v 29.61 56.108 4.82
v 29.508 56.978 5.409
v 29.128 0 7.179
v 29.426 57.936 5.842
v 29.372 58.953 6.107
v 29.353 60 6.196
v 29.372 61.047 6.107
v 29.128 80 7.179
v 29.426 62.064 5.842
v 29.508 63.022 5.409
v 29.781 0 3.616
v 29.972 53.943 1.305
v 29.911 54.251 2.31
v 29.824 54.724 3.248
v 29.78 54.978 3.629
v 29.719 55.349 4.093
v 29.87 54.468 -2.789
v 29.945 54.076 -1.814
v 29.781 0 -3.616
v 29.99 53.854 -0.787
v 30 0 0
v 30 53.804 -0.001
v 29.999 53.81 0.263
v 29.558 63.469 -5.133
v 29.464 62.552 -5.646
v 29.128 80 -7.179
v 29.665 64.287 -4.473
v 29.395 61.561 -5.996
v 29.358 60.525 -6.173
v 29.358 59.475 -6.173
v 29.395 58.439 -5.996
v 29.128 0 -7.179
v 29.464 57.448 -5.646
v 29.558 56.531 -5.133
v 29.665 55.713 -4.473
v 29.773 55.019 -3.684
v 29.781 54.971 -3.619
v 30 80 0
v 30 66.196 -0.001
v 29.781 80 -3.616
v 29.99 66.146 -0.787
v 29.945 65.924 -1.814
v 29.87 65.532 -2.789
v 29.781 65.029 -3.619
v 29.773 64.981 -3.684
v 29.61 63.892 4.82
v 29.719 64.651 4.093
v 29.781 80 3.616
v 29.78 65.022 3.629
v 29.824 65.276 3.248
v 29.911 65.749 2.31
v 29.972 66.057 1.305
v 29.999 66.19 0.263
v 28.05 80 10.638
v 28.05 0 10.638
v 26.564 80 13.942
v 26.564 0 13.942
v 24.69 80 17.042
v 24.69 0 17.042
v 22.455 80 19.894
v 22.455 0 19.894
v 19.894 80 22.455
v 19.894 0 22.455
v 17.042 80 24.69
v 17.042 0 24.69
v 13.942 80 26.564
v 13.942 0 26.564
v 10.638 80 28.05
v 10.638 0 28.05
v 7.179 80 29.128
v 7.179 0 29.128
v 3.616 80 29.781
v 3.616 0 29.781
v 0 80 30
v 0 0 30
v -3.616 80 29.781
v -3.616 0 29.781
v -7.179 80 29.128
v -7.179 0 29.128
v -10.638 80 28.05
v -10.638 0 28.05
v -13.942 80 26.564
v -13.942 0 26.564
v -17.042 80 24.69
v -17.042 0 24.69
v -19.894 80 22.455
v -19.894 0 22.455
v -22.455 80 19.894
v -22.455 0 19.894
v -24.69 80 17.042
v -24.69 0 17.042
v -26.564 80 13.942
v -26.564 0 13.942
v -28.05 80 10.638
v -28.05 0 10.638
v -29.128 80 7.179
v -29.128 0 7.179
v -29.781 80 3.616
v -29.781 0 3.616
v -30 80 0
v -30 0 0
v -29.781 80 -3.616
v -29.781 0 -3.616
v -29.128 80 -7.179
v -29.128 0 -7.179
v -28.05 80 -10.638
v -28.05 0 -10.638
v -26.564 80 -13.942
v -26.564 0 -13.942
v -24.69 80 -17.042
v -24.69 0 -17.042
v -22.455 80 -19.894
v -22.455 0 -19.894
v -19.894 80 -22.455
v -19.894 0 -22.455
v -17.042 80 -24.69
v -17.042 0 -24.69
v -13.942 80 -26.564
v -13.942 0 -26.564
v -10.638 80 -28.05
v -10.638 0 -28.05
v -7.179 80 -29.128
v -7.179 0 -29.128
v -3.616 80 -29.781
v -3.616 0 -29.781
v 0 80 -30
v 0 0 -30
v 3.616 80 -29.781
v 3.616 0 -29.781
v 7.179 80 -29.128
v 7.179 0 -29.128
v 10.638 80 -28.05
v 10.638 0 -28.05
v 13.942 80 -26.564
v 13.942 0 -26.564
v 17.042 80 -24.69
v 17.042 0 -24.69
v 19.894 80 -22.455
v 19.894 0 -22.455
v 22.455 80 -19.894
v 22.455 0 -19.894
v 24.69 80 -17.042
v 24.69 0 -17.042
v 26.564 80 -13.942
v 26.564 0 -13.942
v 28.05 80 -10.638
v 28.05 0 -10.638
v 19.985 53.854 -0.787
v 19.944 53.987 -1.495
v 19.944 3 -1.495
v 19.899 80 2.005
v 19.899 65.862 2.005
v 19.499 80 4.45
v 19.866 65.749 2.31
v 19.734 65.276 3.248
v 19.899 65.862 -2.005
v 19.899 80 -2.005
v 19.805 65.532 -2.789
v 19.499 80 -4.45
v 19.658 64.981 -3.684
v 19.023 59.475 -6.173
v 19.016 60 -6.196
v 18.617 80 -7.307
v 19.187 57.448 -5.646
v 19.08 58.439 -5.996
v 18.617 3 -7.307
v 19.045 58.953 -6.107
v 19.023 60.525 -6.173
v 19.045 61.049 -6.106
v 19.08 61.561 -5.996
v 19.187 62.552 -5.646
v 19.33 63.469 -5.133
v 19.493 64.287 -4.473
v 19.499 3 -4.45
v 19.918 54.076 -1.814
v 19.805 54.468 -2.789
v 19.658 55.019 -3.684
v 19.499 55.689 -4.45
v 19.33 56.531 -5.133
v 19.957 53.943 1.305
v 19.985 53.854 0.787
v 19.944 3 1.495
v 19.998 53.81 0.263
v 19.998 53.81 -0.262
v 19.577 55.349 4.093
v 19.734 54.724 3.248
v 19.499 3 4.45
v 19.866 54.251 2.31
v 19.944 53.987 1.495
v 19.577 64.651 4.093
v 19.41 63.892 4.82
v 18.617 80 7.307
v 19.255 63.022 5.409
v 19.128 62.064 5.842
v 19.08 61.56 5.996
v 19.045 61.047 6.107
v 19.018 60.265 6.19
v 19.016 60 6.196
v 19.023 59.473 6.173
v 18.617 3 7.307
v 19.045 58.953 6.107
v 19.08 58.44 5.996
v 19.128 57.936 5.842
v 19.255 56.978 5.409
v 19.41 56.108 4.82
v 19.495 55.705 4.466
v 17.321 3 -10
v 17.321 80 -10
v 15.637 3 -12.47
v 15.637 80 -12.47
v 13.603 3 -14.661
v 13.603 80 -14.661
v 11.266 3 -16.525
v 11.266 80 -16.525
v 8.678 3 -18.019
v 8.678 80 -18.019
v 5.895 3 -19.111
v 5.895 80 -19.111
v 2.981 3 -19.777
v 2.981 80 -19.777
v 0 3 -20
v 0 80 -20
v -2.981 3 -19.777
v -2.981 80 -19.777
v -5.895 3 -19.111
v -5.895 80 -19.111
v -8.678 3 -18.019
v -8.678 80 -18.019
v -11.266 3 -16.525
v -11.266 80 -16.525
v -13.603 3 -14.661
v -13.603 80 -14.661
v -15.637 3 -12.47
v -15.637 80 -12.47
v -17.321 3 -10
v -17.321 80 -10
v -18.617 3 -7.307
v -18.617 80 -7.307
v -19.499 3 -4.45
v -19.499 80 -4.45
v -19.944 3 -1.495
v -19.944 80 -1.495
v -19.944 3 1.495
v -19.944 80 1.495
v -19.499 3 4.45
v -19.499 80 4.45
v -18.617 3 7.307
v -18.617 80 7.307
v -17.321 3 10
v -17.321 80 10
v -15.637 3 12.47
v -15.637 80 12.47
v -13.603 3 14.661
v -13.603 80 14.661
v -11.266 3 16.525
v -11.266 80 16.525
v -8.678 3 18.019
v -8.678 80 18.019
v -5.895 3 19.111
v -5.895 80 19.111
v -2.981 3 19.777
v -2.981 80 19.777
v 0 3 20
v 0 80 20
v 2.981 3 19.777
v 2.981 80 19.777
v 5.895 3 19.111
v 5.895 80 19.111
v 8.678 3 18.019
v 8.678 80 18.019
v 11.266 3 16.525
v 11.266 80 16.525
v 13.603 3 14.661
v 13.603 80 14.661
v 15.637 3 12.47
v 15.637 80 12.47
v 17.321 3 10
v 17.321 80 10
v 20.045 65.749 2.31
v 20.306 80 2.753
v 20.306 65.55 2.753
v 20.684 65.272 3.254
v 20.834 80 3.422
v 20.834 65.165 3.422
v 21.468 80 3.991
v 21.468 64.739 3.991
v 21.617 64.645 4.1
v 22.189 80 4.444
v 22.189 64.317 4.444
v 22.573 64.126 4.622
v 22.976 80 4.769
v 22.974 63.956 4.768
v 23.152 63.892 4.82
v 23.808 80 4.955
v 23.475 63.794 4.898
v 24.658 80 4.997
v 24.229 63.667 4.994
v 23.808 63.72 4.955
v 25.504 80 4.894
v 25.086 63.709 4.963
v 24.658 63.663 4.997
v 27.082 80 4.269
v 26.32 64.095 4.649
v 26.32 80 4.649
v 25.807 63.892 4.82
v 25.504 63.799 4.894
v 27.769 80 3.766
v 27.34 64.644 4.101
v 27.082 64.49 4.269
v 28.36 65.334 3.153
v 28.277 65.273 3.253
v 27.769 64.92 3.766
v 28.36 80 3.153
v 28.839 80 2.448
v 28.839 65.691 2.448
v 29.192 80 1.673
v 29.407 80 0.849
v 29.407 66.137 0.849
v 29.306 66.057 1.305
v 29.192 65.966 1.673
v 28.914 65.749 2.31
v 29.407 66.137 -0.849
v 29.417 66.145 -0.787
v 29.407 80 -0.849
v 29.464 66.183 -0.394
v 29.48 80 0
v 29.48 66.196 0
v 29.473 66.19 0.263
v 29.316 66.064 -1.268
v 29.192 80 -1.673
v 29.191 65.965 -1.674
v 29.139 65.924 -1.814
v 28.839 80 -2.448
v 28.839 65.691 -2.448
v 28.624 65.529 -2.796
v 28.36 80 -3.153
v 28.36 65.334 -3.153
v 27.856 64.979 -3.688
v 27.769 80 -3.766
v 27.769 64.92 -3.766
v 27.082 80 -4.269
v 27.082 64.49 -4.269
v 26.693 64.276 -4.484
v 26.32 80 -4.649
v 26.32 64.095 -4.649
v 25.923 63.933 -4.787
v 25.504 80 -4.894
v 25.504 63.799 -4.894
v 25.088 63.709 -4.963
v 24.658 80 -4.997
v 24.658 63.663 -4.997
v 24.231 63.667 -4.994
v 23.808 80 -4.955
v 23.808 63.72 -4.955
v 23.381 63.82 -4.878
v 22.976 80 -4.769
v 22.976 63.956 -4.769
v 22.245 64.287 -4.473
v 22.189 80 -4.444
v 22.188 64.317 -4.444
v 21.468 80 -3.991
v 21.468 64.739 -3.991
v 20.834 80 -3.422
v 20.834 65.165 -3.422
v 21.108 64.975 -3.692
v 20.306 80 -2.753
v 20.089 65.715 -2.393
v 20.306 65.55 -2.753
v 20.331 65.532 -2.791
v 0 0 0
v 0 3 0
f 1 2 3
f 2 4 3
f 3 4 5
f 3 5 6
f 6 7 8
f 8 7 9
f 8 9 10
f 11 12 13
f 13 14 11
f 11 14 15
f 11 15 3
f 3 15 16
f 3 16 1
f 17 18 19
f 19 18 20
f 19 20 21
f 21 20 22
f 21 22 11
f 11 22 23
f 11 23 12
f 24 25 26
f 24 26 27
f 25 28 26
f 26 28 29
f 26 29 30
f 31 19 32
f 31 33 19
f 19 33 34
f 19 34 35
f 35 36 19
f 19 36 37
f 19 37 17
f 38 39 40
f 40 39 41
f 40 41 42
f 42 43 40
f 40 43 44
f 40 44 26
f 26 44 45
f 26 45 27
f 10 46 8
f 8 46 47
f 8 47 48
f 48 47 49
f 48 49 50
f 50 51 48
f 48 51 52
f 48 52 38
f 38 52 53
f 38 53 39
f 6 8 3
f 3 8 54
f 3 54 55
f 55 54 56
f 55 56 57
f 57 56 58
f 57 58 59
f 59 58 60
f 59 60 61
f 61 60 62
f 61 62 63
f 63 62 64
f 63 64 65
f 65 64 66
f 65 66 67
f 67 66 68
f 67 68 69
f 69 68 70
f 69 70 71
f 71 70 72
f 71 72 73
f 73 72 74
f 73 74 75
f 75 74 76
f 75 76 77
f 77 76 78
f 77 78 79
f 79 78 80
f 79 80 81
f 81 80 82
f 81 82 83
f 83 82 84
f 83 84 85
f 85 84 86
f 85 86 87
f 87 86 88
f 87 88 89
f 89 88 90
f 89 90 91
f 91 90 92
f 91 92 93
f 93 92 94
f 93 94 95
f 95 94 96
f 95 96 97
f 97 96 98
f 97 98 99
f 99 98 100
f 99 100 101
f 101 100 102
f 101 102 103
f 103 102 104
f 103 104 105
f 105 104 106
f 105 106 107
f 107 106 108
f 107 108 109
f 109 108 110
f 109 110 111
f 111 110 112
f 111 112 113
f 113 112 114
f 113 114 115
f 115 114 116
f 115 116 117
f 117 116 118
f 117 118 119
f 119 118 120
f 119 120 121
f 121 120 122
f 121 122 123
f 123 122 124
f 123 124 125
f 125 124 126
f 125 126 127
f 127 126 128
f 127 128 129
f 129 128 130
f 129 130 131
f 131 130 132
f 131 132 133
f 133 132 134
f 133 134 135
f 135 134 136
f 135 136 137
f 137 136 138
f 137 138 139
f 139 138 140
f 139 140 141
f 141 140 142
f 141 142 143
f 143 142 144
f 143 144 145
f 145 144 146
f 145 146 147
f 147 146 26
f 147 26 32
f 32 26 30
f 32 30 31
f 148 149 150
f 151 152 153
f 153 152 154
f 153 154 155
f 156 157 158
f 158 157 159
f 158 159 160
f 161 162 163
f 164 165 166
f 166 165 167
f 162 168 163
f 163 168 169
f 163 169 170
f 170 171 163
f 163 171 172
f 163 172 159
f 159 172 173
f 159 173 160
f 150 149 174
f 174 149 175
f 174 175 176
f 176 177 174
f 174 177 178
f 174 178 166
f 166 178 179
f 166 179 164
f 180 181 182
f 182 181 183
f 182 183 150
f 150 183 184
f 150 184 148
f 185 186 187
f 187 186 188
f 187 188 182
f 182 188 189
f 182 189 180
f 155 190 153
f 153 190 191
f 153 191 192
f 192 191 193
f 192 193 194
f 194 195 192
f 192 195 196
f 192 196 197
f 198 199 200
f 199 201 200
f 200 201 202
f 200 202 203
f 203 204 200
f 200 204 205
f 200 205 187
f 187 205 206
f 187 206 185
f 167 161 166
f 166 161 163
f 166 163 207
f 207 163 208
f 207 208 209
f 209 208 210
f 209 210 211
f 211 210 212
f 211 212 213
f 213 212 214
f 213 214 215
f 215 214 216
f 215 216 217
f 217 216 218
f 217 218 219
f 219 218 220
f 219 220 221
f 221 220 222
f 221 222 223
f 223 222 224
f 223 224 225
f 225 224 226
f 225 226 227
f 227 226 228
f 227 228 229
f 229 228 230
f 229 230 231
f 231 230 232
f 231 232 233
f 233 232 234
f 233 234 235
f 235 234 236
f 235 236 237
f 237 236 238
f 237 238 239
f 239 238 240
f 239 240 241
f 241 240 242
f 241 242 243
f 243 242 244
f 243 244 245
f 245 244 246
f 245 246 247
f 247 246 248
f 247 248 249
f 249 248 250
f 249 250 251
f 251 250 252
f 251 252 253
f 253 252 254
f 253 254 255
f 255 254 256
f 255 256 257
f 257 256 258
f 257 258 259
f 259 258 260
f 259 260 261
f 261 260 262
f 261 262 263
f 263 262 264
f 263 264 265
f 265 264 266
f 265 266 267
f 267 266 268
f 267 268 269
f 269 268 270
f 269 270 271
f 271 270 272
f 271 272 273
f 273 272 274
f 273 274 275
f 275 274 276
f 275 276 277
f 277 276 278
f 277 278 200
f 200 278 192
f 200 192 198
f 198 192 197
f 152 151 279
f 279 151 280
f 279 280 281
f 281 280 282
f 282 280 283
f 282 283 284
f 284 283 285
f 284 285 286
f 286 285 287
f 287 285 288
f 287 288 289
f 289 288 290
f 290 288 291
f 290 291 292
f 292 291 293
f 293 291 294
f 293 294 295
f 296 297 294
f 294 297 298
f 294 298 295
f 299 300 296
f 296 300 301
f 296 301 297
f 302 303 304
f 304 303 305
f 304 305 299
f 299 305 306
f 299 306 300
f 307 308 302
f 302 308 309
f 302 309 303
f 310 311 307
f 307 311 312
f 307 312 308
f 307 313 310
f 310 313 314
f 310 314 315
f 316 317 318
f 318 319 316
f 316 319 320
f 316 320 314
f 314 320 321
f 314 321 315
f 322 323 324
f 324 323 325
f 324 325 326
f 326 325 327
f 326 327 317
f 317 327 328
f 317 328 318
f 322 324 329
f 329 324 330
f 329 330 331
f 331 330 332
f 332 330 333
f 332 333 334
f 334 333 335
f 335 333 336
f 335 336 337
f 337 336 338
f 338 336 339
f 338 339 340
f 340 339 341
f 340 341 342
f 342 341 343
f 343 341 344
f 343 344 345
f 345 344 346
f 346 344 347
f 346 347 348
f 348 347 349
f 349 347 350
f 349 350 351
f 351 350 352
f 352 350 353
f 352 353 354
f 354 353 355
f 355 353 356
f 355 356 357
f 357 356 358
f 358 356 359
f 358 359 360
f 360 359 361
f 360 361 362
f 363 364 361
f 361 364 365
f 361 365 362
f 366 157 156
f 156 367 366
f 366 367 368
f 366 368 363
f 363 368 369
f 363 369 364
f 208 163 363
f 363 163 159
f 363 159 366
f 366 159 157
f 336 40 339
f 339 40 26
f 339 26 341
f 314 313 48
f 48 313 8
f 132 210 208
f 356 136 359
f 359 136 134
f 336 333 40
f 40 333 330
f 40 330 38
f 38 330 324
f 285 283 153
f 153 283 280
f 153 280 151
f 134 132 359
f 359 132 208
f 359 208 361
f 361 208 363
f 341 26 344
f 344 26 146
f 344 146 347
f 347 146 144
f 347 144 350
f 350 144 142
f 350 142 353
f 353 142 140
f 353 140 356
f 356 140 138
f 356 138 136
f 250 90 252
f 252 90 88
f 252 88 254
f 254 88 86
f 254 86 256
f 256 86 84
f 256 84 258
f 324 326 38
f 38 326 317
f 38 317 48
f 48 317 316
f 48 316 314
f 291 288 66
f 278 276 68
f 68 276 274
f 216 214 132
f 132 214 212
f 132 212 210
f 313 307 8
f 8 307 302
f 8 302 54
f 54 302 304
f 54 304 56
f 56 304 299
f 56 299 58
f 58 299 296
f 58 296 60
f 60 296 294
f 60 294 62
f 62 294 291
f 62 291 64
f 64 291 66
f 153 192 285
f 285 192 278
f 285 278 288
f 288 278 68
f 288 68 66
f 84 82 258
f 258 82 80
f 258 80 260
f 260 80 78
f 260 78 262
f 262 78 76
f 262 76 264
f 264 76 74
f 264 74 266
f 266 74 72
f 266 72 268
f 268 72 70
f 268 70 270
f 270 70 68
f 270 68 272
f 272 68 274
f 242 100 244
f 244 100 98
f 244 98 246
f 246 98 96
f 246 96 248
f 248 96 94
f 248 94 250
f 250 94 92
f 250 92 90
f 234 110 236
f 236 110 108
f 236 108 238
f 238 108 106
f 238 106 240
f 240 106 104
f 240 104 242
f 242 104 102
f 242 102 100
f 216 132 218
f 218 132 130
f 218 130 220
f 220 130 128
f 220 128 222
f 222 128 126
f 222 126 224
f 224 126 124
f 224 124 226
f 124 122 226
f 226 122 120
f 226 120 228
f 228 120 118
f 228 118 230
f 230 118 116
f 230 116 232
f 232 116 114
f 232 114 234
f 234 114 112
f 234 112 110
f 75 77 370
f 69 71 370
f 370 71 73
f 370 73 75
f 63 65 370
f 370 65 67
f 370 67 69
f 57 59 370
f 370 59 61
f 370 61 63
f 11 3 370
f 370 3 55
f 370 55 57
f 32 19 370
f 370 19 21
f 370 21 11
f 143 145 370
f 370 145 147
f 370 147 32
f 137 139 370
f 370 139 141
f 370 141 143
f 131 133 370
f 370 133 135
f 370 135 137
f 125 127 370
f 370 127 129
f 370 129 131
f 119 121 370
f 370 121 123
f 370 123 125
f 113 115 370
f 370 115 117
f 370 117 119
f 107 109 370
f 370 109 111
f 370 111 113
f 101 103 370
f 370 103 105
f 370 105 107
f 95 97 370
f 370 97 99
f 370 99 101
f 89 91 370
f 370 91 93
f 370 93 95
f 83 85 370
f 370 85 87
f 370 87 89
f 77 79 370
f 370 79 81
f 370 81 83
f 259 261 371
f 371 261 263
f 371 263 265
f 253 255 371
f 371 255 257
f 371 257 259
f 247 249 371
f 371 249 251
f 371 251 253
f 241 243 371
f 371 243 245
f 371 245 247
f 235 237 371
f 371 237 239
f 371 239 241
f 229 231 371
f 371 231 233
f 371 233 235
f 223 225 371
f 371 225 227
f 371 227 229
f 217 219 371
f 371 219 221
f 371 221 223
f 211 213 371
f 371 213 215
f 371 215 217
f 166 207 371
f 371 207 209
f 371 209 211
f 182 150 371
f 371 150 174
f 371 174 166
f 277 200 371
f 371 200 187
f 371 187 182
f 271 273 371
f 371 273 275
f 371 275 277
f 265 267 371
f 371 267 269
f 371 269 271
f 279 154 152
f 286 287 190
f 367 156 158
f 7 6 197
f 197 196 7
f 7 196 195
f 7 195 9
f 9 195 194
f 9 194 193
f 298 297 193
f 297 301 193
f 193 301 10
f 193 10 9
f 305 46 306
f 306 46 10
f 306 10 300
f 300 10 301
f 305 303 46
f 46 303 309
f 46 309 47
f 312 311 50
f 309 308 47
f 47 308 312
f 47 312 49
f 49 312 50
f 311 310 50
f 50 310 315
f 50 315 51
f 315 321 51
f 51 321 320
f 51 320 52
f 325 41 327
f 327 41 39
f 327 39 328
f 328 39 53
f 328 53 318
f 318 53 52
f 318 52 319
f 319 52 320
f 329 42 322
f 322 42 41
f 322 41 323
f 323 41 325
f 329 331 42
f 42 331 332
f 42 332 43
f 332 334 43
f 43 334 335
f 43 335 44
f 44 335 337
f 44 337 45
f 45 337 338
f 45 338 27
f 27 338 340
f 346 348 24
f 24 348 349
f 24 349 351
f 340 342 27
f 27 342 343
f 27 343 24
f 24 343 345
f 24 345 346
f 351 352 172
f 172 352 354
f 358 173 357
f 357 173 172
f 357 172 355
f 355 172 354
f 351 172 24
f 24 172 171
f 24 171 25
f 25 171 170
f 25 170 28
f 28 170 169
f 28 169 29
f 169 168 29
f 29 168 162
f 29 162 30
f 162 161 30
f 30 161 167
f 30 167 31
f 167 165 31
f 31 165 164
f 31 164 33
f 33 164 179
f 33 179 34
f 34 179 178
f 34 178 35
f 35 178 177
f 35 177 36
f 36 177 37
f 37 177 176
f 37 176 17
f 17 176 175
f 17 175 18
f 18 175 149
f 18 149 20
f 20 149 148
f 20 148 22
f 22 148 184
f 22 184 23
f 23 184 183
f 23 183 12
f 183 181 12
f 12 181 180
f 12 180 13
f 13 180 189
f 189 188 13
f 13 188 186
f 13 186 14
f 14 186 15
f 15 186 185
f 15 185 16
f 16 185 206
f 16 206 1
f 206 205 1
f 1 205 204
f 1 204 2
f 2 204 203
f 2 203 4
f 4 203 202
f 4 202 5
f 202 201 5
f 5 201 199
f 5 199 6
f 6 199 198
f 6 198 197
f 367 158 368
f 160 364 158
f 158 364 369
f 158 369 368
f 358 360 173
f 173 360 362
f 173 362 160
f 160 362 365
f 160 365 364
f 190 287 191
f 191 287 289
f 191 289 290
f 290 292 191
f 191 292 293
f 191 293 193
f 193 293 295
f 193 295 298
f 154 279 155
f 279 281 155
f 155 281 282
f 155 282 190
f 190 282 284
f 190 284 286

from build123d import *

# Parameters (mm, degrees)
SKETCH1_R           = 30
BOSS_EXTRUDE1_DEPTH = 80
SKETCH2_R           = 20
CUT_EXTRUDE2_DEPTH  = 77
SKETCH3_R           = 5
CUT_EXTRUDE3_DEPTH  = 20
SKETCH6_R           = 6.195708911
CUT_EXTRUDE6_DEPTH  = 40


with BuildPart() as part:
    # Sketch1 → Boss-Extrude1 (new body)
    with BuildSketch(Plane(origin=(0, 0, 0), x_dir=(1, 0, 0), z_dir=(0, 1, 0))):
        with Locations(Location((0, 0, 0), (0, 0, 270))):
            Circle(SKETCH1_R)
    extrude(amount=BOSS_EXTRUDE1_DEPTH)

    # Sketch2 → Cut-Extrude2 (cut)
    with BuildSketch(Plane(origin=(0, 80, 0), x_dir=(1, 0, 0), z_dir=(0, 1, 0))):
        with Locations(Location((0, 0, 0), (0, 0, 270))):
            Circle(SKETCH2_R)
    extrude(amount=-CUT_EXTRUDE2_DEPTH, mode=Mode.SUBTRACT)

    # Sketch3 → Cut-Extrude3 (cut)
    with BuildSketch(Plane(origin=(0, 80, 0), x_dir=(1, 0, 0), z_dir=(0, 1, 0))):
        with Locations((24.479648354, 0)):
            Circle(SKETCH3_R)
    extrude(amount=-CUT_EXTRUDE3_DEPTH, mode=Mode.SUBTRACT)

    # Sketch6 → Cut-Extrude6 (cut)
    with BuildSketch(Plane(origin=(0, 0, 0), x_dir=(0, 0, -1), z_dir=(1, 0, 0))):
        with Locations(Location((0, 60, 0), (0, 0, 180))):
            Circle(SKETCH6_R)
    extrude(amount=CUT_EXTRUDE6_DEPTH, mode=Mode.SUBTRACT)


solid = part.part
